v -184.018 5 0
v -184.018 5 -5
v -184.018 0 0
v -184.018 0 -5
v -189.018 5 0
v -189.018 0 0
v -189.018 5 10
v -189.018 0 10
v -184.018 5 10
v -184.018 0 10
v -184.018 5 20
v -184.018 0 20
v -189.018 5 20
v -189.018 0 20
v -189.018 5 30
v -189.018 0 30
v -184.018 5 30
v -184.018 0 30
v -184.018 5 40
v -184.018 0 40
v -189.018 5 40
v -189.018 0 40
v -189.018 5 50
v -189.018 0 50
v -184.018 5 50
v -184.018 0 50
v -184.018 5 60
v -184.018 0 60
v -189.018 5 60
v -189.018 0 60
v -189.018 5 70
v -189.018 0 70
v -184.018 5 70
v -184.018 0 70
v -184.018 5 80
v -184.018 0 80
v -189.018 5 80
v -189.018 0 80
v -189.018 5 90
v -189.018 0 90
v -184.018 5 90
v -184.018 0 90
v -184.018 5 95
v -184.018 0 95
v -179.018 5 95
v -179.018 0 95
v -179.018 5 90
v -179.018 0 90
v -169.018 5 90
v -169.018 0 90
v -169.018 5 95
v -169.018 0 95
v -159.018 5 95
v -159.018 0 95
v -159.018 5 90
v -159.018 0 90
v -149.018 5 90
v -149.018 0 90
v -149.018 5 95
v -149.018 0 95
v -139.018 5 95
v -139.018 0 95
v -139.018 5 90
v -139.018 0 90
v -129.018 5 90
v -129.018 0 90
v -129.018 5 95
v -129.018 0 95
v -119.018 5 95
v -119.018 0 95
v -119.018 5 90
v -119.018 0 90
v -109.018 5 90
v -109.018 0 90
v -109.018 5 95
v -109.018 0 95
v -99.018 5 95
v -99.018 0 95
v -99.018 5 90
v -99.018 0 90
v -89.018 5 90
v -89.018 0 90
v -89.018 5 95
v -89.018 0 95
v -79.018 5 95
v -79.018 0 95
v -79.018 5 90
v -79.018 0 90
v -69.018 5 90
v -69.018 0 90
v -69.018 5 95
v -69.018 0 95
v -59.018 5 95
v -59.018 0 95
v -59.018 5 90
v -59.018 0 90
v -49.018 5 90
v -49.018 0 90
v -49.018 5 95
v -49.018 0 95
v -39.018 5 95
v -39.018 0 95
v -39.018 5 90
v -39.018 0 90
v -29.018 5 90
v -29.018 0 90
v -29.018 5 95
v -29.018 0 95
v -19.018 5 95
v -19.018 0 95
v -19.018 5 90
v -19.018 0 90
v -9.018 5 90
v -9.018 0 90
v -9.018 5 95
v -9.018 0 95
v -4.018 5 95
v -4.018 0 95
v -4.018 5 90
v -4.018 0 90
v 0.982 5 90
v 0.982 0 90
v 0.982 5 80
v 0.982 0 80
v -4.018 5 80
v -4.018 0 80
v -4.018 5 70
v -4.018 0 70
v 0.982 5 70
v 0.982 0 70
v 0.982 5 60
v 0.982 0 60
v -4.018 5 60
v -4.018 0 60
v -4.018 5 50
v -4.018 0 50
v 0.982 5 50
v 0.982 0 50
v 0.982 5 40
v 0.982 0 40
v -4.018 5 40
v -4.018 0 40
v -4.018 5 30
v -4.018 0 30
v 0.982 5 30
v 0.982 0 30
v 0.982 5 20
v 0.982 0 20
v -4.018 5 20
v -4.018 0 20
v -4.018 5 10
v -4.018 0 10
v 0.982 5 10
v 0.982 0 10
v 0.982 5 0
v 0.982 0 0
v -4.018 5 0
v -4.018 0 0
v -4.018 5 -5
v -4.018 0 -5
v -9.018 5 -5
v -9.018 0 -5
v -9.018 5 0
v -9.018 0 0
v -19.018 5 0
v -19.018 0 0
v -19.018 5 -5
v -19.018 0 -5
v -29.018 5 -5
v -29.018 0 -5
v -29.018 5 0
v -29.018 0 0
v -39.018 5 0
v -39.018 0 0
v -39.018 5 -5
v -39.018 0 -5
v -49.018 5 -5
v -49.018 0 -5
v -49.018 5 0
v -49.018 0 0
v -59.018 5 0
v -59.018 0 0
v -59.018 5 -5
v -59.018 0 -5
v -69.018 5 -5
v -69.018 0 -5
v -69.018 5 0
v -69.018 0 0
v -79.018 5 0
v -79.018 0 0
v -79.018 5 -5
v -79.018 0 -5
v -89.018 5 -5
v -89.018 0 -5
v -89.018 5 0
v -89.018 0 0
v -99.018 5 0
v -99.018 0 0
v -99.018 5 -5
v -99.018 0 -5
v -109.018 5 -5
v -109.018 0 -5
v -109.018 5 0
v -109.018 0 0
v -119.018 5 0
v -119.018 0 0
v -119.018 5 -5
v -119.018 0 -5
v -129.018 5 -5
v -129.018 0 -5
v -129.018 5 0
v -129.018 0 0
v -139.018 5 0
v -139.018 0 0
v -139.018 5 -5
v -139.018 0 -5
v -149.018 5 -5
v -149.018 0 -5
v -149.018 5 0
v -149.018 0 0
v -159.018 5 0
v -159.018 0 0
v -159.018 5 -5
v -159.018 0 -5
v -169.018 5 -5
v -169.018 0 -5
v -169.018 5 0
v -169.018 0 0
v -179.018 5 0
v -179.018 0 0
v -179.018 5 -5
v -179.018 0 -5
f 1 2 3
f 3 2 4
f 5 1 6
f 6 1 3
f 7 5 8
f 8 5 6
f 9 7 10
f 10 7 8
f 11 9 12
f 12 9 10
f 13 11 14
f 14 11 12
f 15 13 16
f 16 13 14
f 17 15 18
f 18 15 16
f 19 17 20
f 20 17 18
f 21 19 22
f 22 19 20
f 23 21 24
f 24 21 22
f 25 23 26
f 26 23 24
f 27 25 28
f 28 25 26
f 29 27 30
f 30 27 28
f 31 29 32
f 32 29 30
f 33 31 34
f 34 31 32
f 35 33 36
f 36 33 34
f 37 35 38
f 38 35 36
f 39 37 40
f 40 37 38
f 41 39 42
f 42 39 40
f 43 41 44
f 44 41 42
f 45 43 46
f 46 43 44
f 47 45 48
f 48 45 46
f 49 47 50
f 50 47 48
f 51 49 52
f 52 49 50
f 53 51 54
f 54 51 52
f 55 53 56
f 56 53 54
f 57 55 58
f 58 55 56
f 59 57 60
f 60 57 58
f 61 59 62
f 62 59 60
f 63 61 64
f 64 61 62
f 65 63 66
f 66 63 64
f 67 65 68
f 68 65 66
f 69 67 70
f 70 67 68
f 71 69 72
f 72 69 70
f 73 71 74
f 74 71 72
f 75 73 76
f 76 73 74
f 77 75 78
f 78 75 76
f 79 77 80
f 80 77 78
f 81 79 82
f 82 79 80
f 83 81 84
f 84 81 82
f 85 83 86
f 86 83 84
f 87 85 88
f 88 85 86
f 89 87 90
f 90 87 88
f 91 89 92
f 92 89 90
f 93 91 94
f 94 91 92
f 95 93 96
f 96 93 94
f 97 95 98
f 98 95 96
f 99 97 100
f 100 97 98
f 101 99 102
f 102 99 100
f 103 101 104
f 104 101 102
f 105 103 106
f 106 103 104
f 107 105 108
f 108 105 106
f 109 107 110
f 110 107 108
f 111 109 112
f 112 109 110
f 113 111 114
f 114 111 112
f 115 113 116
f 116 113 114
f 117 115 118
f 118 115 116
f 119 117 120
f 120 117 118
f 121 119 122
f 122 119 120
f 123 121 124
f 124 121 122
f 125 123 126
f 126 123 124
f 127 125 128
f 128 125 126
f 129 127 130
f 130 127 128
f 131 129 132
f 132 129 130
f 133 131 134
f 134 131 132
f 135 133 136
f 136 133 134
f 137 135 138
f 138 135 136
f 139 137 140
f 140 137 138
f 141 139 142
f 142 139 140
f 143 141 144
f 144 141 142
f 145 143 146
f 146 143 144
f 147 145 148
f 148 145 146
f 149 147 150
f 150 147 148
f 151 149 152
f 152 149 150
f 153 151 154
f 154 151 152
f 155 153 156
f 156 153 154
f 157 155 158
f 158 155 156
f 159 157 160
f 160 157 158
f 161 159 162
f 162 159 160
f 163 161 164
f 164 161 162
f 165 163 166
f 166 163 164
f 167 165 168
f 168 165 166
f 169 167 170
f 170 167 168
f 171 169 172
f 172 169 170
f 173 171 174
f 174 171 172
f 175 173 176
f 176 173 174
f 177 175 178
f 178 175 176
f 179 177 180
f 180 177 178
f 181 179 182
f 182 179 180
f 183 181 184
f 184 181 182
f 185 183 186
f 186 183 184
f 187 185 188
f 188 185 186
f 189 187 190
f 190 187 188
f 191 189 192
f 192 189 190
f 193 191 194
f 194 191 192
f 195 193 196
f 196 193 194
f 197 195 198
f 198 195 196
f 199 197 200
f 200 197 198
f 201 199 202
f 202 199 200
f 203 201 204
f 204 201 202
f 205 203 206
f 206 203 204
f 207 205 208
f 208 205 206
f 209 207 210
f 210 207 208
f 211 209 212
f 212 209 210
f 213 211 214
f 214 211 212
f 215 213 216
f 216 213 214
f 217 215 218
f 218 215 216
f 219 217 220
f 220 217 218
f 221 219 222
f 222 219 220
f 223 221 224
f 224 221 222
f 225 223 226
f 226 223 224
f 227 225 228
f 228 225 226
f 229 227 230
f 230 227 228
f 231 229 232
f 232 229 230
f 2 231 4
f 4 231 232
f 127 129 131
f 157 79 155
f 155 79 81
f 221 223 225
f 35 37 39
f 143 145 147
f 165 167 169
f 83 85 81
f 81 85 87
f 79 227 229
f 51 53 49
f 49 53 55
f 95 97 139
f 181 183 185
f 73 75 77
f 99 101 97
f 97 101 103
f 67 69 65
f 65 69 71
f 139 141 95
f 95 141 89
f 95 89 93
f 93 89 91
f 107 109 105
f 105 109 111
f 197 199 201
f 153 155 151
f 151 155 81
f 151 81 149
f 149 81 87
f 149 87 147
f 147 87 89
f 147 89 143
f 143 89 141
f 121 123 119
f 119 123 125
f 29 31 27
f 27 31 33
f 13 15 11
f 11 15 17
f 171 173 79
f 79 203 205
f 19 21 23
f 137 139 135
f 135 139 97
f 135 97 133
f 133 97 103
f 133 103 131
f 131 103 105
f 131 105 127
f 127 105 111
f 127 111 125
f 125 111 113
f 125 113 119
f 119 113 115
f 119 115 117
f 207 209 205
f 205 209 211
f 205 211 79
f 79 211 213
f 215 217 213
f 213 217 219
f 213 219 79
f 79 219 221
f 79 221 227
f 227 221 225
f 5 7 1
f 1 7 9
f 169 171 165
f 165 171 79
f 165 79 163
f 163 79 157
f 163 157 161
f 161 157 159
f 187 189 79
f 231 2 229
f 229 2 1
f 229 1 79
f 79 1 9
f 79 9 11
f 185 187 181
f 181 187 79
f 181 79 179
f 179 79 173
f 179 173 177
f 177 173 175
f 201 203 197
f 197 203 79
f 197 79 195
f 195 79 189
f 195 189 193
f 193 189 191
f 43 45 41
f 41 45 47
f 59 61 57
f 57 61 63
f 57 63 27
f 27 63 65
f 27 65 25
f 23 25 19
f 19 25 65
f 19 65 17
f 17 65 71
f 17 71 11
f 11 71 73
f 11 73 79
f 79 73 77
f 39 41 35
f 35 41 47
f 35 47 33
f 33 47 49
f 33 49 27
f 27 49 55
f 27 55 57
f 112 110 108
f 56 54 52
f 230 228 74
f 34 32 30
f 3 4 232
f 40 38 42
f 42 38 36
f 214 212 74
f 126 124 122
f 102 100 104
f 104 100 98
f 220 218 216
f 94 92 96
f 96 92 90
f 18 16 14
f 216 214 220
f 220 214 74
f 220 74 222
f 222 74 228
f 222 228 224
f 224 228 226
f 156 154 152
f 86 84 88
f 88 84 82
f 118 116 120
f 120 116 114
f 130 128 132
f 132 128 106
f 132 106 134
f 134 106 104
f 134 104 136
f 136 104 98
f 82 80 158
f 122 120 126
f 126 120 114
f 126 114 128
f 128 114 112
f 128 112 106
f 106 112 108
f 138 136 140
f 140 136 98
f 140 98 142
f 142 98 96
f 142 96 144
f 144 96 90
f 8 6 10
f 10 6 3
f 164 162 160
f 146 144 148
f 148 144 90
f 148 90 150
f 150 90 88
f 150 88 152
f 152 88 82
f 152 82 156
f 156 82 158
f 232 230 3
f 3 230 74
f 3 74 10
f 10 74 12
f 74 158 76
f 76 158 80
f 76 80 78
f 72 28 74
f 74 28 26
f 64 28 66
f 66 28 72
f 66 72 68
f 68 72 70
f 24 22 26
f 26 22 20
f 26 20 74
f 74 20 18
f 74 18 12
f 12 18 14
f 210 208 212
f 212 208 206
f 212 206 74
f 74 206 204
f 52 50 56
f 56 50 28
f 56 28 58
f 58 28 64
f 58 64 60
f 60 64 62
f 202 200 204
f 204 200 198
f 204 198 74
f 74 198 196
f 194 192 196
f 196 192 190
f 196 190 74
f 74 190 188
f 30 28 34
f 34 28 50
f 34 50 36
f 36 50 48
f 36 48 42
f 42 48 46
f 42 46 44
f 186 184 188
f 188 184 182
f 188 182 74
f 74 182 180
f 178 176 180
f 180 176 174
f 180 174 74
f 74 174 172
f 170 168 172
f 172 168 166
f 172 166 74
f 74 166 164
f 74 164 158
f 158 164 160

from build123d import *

# Parameters (mm, degrees)
BOSS_EXTRUDE3_DEPTH = 5


with BuildPart() as part:
    # Sketch2 → Boss-Extrude3 (new body)
    with BuildSketch(Plane(origin=(0, 0, 0), x_dir=(1, 0, 0), z_dir=(0, 1, 0))):
        Polygon((-4.018396485, -10), (-4.018396485, -20), (0.981603515, -20), (0.981603515, -30), (-4.018396485, -30), (-4.018396485, -40), (0.981603515, -40), (0.981603515, -50), (-4.018396485, -50), (-4.018396485, -60), (0.981603515, -60), (0.981603515, -70), (-4.018396485, -70), (-4.018396485, -80), (0.981603515, -80), (0.981603515, -90), (-4.018396485, -90), (-4.018396485, -95), (-9.018396485, -95), (-9.018396485, -90), (-19.018396485, -90), (-19.018396485, -95), (-29.018396485, -95), (-29.018396485, -90), (-39.018396485, -90), (-39.018396485, -95), (-49.018396485, -95), (-49.018396485, -90), (-59.018396485, -90), (-59.018396485, -95), (-69.018396485, -95), (-69.018396485, -90), (-79.018396485, -90), (-79.018396485, -95), (-89.018396485, -95), (-89.018396485, -90), (-99.018396485, -90), (-99.018396485, -95), (-109.018396485, -95), (-109.018396485, -90), (-119.018396485, -90), (-119.018396485, -95), (-129.018396485, -95), (-129.018396485, -90), (-139.018396485, -90), (-139.018396485, -95), (-149.018396485, -95), (-149.018396485, -90), (-159.018396485, -90), (-159.018396485, -95), (-169.018396485, -95), (-169.018396485, -90), (-179.018396485, -90), (-179.018396485, -95), (-184.018396485, -95), (-184.018396485, -90), (-189.018396485, -90), (-189.018396485, -80), (-184.018396485, -80), (-184.018396485, -70), (-189.018396485, -70), (-189.018396485, -60), (-184.018396485, -60), (-184.018396485, -50), (-189.018396485, -50), (-189.018396485, -40), (-184.018396485, -40), (-184.018396485, -30), (-189.018396485, -30), (-189.018396485, -20), (-184.018396485, -20), (-184.018396485, -10), (-189.018396485, -10), (-189.018396485, 0), (-184.018396485, 0), (-184.018396485, 5), (-179.018396485, 5), (-179.018396485, 0), (-169.018396485, 0), (-169.018396485, 5), (-159.018396485, 5), (-159.018396485, 0), (-149.018396485, 0), (-149.018396485, 5), (-139.018396485, 5), (-139.018396485, 0), (-129.018396485, 0), (-129.018396485, 5), (-119.018396485, 5), (-119.018396485, 0), (-109.018396485, 0), (-109.018396485, 5), (-99.018396485, 5), (-99.018396485, 0), (-89.018396485, 0), (-89.018396485, 5), (-79.018396485, 5), (-79.018396485, 0), (-69.018396485, 0), (-69.018396485, 5), (-59.018396485, 5), (-59.018396485, 0), (-49.018396485, 0), (-49.018396485, 5), (-39.018396485, 5), (-39.018396485, 0), (-29.018396485, 0), (-29.018396485, 5), (-19.018396485, 5), (-19.018396485, 0), (-9.018396485, 0), (-9.018396485, 5), (-4.018396485, 5), (-4.018396485, 0), (0.981603515, 0), (0.981603515, -10), align=None)
    extrude(amount=BOSS_EXTRUDE3_DEPTH)


solid = part.part
